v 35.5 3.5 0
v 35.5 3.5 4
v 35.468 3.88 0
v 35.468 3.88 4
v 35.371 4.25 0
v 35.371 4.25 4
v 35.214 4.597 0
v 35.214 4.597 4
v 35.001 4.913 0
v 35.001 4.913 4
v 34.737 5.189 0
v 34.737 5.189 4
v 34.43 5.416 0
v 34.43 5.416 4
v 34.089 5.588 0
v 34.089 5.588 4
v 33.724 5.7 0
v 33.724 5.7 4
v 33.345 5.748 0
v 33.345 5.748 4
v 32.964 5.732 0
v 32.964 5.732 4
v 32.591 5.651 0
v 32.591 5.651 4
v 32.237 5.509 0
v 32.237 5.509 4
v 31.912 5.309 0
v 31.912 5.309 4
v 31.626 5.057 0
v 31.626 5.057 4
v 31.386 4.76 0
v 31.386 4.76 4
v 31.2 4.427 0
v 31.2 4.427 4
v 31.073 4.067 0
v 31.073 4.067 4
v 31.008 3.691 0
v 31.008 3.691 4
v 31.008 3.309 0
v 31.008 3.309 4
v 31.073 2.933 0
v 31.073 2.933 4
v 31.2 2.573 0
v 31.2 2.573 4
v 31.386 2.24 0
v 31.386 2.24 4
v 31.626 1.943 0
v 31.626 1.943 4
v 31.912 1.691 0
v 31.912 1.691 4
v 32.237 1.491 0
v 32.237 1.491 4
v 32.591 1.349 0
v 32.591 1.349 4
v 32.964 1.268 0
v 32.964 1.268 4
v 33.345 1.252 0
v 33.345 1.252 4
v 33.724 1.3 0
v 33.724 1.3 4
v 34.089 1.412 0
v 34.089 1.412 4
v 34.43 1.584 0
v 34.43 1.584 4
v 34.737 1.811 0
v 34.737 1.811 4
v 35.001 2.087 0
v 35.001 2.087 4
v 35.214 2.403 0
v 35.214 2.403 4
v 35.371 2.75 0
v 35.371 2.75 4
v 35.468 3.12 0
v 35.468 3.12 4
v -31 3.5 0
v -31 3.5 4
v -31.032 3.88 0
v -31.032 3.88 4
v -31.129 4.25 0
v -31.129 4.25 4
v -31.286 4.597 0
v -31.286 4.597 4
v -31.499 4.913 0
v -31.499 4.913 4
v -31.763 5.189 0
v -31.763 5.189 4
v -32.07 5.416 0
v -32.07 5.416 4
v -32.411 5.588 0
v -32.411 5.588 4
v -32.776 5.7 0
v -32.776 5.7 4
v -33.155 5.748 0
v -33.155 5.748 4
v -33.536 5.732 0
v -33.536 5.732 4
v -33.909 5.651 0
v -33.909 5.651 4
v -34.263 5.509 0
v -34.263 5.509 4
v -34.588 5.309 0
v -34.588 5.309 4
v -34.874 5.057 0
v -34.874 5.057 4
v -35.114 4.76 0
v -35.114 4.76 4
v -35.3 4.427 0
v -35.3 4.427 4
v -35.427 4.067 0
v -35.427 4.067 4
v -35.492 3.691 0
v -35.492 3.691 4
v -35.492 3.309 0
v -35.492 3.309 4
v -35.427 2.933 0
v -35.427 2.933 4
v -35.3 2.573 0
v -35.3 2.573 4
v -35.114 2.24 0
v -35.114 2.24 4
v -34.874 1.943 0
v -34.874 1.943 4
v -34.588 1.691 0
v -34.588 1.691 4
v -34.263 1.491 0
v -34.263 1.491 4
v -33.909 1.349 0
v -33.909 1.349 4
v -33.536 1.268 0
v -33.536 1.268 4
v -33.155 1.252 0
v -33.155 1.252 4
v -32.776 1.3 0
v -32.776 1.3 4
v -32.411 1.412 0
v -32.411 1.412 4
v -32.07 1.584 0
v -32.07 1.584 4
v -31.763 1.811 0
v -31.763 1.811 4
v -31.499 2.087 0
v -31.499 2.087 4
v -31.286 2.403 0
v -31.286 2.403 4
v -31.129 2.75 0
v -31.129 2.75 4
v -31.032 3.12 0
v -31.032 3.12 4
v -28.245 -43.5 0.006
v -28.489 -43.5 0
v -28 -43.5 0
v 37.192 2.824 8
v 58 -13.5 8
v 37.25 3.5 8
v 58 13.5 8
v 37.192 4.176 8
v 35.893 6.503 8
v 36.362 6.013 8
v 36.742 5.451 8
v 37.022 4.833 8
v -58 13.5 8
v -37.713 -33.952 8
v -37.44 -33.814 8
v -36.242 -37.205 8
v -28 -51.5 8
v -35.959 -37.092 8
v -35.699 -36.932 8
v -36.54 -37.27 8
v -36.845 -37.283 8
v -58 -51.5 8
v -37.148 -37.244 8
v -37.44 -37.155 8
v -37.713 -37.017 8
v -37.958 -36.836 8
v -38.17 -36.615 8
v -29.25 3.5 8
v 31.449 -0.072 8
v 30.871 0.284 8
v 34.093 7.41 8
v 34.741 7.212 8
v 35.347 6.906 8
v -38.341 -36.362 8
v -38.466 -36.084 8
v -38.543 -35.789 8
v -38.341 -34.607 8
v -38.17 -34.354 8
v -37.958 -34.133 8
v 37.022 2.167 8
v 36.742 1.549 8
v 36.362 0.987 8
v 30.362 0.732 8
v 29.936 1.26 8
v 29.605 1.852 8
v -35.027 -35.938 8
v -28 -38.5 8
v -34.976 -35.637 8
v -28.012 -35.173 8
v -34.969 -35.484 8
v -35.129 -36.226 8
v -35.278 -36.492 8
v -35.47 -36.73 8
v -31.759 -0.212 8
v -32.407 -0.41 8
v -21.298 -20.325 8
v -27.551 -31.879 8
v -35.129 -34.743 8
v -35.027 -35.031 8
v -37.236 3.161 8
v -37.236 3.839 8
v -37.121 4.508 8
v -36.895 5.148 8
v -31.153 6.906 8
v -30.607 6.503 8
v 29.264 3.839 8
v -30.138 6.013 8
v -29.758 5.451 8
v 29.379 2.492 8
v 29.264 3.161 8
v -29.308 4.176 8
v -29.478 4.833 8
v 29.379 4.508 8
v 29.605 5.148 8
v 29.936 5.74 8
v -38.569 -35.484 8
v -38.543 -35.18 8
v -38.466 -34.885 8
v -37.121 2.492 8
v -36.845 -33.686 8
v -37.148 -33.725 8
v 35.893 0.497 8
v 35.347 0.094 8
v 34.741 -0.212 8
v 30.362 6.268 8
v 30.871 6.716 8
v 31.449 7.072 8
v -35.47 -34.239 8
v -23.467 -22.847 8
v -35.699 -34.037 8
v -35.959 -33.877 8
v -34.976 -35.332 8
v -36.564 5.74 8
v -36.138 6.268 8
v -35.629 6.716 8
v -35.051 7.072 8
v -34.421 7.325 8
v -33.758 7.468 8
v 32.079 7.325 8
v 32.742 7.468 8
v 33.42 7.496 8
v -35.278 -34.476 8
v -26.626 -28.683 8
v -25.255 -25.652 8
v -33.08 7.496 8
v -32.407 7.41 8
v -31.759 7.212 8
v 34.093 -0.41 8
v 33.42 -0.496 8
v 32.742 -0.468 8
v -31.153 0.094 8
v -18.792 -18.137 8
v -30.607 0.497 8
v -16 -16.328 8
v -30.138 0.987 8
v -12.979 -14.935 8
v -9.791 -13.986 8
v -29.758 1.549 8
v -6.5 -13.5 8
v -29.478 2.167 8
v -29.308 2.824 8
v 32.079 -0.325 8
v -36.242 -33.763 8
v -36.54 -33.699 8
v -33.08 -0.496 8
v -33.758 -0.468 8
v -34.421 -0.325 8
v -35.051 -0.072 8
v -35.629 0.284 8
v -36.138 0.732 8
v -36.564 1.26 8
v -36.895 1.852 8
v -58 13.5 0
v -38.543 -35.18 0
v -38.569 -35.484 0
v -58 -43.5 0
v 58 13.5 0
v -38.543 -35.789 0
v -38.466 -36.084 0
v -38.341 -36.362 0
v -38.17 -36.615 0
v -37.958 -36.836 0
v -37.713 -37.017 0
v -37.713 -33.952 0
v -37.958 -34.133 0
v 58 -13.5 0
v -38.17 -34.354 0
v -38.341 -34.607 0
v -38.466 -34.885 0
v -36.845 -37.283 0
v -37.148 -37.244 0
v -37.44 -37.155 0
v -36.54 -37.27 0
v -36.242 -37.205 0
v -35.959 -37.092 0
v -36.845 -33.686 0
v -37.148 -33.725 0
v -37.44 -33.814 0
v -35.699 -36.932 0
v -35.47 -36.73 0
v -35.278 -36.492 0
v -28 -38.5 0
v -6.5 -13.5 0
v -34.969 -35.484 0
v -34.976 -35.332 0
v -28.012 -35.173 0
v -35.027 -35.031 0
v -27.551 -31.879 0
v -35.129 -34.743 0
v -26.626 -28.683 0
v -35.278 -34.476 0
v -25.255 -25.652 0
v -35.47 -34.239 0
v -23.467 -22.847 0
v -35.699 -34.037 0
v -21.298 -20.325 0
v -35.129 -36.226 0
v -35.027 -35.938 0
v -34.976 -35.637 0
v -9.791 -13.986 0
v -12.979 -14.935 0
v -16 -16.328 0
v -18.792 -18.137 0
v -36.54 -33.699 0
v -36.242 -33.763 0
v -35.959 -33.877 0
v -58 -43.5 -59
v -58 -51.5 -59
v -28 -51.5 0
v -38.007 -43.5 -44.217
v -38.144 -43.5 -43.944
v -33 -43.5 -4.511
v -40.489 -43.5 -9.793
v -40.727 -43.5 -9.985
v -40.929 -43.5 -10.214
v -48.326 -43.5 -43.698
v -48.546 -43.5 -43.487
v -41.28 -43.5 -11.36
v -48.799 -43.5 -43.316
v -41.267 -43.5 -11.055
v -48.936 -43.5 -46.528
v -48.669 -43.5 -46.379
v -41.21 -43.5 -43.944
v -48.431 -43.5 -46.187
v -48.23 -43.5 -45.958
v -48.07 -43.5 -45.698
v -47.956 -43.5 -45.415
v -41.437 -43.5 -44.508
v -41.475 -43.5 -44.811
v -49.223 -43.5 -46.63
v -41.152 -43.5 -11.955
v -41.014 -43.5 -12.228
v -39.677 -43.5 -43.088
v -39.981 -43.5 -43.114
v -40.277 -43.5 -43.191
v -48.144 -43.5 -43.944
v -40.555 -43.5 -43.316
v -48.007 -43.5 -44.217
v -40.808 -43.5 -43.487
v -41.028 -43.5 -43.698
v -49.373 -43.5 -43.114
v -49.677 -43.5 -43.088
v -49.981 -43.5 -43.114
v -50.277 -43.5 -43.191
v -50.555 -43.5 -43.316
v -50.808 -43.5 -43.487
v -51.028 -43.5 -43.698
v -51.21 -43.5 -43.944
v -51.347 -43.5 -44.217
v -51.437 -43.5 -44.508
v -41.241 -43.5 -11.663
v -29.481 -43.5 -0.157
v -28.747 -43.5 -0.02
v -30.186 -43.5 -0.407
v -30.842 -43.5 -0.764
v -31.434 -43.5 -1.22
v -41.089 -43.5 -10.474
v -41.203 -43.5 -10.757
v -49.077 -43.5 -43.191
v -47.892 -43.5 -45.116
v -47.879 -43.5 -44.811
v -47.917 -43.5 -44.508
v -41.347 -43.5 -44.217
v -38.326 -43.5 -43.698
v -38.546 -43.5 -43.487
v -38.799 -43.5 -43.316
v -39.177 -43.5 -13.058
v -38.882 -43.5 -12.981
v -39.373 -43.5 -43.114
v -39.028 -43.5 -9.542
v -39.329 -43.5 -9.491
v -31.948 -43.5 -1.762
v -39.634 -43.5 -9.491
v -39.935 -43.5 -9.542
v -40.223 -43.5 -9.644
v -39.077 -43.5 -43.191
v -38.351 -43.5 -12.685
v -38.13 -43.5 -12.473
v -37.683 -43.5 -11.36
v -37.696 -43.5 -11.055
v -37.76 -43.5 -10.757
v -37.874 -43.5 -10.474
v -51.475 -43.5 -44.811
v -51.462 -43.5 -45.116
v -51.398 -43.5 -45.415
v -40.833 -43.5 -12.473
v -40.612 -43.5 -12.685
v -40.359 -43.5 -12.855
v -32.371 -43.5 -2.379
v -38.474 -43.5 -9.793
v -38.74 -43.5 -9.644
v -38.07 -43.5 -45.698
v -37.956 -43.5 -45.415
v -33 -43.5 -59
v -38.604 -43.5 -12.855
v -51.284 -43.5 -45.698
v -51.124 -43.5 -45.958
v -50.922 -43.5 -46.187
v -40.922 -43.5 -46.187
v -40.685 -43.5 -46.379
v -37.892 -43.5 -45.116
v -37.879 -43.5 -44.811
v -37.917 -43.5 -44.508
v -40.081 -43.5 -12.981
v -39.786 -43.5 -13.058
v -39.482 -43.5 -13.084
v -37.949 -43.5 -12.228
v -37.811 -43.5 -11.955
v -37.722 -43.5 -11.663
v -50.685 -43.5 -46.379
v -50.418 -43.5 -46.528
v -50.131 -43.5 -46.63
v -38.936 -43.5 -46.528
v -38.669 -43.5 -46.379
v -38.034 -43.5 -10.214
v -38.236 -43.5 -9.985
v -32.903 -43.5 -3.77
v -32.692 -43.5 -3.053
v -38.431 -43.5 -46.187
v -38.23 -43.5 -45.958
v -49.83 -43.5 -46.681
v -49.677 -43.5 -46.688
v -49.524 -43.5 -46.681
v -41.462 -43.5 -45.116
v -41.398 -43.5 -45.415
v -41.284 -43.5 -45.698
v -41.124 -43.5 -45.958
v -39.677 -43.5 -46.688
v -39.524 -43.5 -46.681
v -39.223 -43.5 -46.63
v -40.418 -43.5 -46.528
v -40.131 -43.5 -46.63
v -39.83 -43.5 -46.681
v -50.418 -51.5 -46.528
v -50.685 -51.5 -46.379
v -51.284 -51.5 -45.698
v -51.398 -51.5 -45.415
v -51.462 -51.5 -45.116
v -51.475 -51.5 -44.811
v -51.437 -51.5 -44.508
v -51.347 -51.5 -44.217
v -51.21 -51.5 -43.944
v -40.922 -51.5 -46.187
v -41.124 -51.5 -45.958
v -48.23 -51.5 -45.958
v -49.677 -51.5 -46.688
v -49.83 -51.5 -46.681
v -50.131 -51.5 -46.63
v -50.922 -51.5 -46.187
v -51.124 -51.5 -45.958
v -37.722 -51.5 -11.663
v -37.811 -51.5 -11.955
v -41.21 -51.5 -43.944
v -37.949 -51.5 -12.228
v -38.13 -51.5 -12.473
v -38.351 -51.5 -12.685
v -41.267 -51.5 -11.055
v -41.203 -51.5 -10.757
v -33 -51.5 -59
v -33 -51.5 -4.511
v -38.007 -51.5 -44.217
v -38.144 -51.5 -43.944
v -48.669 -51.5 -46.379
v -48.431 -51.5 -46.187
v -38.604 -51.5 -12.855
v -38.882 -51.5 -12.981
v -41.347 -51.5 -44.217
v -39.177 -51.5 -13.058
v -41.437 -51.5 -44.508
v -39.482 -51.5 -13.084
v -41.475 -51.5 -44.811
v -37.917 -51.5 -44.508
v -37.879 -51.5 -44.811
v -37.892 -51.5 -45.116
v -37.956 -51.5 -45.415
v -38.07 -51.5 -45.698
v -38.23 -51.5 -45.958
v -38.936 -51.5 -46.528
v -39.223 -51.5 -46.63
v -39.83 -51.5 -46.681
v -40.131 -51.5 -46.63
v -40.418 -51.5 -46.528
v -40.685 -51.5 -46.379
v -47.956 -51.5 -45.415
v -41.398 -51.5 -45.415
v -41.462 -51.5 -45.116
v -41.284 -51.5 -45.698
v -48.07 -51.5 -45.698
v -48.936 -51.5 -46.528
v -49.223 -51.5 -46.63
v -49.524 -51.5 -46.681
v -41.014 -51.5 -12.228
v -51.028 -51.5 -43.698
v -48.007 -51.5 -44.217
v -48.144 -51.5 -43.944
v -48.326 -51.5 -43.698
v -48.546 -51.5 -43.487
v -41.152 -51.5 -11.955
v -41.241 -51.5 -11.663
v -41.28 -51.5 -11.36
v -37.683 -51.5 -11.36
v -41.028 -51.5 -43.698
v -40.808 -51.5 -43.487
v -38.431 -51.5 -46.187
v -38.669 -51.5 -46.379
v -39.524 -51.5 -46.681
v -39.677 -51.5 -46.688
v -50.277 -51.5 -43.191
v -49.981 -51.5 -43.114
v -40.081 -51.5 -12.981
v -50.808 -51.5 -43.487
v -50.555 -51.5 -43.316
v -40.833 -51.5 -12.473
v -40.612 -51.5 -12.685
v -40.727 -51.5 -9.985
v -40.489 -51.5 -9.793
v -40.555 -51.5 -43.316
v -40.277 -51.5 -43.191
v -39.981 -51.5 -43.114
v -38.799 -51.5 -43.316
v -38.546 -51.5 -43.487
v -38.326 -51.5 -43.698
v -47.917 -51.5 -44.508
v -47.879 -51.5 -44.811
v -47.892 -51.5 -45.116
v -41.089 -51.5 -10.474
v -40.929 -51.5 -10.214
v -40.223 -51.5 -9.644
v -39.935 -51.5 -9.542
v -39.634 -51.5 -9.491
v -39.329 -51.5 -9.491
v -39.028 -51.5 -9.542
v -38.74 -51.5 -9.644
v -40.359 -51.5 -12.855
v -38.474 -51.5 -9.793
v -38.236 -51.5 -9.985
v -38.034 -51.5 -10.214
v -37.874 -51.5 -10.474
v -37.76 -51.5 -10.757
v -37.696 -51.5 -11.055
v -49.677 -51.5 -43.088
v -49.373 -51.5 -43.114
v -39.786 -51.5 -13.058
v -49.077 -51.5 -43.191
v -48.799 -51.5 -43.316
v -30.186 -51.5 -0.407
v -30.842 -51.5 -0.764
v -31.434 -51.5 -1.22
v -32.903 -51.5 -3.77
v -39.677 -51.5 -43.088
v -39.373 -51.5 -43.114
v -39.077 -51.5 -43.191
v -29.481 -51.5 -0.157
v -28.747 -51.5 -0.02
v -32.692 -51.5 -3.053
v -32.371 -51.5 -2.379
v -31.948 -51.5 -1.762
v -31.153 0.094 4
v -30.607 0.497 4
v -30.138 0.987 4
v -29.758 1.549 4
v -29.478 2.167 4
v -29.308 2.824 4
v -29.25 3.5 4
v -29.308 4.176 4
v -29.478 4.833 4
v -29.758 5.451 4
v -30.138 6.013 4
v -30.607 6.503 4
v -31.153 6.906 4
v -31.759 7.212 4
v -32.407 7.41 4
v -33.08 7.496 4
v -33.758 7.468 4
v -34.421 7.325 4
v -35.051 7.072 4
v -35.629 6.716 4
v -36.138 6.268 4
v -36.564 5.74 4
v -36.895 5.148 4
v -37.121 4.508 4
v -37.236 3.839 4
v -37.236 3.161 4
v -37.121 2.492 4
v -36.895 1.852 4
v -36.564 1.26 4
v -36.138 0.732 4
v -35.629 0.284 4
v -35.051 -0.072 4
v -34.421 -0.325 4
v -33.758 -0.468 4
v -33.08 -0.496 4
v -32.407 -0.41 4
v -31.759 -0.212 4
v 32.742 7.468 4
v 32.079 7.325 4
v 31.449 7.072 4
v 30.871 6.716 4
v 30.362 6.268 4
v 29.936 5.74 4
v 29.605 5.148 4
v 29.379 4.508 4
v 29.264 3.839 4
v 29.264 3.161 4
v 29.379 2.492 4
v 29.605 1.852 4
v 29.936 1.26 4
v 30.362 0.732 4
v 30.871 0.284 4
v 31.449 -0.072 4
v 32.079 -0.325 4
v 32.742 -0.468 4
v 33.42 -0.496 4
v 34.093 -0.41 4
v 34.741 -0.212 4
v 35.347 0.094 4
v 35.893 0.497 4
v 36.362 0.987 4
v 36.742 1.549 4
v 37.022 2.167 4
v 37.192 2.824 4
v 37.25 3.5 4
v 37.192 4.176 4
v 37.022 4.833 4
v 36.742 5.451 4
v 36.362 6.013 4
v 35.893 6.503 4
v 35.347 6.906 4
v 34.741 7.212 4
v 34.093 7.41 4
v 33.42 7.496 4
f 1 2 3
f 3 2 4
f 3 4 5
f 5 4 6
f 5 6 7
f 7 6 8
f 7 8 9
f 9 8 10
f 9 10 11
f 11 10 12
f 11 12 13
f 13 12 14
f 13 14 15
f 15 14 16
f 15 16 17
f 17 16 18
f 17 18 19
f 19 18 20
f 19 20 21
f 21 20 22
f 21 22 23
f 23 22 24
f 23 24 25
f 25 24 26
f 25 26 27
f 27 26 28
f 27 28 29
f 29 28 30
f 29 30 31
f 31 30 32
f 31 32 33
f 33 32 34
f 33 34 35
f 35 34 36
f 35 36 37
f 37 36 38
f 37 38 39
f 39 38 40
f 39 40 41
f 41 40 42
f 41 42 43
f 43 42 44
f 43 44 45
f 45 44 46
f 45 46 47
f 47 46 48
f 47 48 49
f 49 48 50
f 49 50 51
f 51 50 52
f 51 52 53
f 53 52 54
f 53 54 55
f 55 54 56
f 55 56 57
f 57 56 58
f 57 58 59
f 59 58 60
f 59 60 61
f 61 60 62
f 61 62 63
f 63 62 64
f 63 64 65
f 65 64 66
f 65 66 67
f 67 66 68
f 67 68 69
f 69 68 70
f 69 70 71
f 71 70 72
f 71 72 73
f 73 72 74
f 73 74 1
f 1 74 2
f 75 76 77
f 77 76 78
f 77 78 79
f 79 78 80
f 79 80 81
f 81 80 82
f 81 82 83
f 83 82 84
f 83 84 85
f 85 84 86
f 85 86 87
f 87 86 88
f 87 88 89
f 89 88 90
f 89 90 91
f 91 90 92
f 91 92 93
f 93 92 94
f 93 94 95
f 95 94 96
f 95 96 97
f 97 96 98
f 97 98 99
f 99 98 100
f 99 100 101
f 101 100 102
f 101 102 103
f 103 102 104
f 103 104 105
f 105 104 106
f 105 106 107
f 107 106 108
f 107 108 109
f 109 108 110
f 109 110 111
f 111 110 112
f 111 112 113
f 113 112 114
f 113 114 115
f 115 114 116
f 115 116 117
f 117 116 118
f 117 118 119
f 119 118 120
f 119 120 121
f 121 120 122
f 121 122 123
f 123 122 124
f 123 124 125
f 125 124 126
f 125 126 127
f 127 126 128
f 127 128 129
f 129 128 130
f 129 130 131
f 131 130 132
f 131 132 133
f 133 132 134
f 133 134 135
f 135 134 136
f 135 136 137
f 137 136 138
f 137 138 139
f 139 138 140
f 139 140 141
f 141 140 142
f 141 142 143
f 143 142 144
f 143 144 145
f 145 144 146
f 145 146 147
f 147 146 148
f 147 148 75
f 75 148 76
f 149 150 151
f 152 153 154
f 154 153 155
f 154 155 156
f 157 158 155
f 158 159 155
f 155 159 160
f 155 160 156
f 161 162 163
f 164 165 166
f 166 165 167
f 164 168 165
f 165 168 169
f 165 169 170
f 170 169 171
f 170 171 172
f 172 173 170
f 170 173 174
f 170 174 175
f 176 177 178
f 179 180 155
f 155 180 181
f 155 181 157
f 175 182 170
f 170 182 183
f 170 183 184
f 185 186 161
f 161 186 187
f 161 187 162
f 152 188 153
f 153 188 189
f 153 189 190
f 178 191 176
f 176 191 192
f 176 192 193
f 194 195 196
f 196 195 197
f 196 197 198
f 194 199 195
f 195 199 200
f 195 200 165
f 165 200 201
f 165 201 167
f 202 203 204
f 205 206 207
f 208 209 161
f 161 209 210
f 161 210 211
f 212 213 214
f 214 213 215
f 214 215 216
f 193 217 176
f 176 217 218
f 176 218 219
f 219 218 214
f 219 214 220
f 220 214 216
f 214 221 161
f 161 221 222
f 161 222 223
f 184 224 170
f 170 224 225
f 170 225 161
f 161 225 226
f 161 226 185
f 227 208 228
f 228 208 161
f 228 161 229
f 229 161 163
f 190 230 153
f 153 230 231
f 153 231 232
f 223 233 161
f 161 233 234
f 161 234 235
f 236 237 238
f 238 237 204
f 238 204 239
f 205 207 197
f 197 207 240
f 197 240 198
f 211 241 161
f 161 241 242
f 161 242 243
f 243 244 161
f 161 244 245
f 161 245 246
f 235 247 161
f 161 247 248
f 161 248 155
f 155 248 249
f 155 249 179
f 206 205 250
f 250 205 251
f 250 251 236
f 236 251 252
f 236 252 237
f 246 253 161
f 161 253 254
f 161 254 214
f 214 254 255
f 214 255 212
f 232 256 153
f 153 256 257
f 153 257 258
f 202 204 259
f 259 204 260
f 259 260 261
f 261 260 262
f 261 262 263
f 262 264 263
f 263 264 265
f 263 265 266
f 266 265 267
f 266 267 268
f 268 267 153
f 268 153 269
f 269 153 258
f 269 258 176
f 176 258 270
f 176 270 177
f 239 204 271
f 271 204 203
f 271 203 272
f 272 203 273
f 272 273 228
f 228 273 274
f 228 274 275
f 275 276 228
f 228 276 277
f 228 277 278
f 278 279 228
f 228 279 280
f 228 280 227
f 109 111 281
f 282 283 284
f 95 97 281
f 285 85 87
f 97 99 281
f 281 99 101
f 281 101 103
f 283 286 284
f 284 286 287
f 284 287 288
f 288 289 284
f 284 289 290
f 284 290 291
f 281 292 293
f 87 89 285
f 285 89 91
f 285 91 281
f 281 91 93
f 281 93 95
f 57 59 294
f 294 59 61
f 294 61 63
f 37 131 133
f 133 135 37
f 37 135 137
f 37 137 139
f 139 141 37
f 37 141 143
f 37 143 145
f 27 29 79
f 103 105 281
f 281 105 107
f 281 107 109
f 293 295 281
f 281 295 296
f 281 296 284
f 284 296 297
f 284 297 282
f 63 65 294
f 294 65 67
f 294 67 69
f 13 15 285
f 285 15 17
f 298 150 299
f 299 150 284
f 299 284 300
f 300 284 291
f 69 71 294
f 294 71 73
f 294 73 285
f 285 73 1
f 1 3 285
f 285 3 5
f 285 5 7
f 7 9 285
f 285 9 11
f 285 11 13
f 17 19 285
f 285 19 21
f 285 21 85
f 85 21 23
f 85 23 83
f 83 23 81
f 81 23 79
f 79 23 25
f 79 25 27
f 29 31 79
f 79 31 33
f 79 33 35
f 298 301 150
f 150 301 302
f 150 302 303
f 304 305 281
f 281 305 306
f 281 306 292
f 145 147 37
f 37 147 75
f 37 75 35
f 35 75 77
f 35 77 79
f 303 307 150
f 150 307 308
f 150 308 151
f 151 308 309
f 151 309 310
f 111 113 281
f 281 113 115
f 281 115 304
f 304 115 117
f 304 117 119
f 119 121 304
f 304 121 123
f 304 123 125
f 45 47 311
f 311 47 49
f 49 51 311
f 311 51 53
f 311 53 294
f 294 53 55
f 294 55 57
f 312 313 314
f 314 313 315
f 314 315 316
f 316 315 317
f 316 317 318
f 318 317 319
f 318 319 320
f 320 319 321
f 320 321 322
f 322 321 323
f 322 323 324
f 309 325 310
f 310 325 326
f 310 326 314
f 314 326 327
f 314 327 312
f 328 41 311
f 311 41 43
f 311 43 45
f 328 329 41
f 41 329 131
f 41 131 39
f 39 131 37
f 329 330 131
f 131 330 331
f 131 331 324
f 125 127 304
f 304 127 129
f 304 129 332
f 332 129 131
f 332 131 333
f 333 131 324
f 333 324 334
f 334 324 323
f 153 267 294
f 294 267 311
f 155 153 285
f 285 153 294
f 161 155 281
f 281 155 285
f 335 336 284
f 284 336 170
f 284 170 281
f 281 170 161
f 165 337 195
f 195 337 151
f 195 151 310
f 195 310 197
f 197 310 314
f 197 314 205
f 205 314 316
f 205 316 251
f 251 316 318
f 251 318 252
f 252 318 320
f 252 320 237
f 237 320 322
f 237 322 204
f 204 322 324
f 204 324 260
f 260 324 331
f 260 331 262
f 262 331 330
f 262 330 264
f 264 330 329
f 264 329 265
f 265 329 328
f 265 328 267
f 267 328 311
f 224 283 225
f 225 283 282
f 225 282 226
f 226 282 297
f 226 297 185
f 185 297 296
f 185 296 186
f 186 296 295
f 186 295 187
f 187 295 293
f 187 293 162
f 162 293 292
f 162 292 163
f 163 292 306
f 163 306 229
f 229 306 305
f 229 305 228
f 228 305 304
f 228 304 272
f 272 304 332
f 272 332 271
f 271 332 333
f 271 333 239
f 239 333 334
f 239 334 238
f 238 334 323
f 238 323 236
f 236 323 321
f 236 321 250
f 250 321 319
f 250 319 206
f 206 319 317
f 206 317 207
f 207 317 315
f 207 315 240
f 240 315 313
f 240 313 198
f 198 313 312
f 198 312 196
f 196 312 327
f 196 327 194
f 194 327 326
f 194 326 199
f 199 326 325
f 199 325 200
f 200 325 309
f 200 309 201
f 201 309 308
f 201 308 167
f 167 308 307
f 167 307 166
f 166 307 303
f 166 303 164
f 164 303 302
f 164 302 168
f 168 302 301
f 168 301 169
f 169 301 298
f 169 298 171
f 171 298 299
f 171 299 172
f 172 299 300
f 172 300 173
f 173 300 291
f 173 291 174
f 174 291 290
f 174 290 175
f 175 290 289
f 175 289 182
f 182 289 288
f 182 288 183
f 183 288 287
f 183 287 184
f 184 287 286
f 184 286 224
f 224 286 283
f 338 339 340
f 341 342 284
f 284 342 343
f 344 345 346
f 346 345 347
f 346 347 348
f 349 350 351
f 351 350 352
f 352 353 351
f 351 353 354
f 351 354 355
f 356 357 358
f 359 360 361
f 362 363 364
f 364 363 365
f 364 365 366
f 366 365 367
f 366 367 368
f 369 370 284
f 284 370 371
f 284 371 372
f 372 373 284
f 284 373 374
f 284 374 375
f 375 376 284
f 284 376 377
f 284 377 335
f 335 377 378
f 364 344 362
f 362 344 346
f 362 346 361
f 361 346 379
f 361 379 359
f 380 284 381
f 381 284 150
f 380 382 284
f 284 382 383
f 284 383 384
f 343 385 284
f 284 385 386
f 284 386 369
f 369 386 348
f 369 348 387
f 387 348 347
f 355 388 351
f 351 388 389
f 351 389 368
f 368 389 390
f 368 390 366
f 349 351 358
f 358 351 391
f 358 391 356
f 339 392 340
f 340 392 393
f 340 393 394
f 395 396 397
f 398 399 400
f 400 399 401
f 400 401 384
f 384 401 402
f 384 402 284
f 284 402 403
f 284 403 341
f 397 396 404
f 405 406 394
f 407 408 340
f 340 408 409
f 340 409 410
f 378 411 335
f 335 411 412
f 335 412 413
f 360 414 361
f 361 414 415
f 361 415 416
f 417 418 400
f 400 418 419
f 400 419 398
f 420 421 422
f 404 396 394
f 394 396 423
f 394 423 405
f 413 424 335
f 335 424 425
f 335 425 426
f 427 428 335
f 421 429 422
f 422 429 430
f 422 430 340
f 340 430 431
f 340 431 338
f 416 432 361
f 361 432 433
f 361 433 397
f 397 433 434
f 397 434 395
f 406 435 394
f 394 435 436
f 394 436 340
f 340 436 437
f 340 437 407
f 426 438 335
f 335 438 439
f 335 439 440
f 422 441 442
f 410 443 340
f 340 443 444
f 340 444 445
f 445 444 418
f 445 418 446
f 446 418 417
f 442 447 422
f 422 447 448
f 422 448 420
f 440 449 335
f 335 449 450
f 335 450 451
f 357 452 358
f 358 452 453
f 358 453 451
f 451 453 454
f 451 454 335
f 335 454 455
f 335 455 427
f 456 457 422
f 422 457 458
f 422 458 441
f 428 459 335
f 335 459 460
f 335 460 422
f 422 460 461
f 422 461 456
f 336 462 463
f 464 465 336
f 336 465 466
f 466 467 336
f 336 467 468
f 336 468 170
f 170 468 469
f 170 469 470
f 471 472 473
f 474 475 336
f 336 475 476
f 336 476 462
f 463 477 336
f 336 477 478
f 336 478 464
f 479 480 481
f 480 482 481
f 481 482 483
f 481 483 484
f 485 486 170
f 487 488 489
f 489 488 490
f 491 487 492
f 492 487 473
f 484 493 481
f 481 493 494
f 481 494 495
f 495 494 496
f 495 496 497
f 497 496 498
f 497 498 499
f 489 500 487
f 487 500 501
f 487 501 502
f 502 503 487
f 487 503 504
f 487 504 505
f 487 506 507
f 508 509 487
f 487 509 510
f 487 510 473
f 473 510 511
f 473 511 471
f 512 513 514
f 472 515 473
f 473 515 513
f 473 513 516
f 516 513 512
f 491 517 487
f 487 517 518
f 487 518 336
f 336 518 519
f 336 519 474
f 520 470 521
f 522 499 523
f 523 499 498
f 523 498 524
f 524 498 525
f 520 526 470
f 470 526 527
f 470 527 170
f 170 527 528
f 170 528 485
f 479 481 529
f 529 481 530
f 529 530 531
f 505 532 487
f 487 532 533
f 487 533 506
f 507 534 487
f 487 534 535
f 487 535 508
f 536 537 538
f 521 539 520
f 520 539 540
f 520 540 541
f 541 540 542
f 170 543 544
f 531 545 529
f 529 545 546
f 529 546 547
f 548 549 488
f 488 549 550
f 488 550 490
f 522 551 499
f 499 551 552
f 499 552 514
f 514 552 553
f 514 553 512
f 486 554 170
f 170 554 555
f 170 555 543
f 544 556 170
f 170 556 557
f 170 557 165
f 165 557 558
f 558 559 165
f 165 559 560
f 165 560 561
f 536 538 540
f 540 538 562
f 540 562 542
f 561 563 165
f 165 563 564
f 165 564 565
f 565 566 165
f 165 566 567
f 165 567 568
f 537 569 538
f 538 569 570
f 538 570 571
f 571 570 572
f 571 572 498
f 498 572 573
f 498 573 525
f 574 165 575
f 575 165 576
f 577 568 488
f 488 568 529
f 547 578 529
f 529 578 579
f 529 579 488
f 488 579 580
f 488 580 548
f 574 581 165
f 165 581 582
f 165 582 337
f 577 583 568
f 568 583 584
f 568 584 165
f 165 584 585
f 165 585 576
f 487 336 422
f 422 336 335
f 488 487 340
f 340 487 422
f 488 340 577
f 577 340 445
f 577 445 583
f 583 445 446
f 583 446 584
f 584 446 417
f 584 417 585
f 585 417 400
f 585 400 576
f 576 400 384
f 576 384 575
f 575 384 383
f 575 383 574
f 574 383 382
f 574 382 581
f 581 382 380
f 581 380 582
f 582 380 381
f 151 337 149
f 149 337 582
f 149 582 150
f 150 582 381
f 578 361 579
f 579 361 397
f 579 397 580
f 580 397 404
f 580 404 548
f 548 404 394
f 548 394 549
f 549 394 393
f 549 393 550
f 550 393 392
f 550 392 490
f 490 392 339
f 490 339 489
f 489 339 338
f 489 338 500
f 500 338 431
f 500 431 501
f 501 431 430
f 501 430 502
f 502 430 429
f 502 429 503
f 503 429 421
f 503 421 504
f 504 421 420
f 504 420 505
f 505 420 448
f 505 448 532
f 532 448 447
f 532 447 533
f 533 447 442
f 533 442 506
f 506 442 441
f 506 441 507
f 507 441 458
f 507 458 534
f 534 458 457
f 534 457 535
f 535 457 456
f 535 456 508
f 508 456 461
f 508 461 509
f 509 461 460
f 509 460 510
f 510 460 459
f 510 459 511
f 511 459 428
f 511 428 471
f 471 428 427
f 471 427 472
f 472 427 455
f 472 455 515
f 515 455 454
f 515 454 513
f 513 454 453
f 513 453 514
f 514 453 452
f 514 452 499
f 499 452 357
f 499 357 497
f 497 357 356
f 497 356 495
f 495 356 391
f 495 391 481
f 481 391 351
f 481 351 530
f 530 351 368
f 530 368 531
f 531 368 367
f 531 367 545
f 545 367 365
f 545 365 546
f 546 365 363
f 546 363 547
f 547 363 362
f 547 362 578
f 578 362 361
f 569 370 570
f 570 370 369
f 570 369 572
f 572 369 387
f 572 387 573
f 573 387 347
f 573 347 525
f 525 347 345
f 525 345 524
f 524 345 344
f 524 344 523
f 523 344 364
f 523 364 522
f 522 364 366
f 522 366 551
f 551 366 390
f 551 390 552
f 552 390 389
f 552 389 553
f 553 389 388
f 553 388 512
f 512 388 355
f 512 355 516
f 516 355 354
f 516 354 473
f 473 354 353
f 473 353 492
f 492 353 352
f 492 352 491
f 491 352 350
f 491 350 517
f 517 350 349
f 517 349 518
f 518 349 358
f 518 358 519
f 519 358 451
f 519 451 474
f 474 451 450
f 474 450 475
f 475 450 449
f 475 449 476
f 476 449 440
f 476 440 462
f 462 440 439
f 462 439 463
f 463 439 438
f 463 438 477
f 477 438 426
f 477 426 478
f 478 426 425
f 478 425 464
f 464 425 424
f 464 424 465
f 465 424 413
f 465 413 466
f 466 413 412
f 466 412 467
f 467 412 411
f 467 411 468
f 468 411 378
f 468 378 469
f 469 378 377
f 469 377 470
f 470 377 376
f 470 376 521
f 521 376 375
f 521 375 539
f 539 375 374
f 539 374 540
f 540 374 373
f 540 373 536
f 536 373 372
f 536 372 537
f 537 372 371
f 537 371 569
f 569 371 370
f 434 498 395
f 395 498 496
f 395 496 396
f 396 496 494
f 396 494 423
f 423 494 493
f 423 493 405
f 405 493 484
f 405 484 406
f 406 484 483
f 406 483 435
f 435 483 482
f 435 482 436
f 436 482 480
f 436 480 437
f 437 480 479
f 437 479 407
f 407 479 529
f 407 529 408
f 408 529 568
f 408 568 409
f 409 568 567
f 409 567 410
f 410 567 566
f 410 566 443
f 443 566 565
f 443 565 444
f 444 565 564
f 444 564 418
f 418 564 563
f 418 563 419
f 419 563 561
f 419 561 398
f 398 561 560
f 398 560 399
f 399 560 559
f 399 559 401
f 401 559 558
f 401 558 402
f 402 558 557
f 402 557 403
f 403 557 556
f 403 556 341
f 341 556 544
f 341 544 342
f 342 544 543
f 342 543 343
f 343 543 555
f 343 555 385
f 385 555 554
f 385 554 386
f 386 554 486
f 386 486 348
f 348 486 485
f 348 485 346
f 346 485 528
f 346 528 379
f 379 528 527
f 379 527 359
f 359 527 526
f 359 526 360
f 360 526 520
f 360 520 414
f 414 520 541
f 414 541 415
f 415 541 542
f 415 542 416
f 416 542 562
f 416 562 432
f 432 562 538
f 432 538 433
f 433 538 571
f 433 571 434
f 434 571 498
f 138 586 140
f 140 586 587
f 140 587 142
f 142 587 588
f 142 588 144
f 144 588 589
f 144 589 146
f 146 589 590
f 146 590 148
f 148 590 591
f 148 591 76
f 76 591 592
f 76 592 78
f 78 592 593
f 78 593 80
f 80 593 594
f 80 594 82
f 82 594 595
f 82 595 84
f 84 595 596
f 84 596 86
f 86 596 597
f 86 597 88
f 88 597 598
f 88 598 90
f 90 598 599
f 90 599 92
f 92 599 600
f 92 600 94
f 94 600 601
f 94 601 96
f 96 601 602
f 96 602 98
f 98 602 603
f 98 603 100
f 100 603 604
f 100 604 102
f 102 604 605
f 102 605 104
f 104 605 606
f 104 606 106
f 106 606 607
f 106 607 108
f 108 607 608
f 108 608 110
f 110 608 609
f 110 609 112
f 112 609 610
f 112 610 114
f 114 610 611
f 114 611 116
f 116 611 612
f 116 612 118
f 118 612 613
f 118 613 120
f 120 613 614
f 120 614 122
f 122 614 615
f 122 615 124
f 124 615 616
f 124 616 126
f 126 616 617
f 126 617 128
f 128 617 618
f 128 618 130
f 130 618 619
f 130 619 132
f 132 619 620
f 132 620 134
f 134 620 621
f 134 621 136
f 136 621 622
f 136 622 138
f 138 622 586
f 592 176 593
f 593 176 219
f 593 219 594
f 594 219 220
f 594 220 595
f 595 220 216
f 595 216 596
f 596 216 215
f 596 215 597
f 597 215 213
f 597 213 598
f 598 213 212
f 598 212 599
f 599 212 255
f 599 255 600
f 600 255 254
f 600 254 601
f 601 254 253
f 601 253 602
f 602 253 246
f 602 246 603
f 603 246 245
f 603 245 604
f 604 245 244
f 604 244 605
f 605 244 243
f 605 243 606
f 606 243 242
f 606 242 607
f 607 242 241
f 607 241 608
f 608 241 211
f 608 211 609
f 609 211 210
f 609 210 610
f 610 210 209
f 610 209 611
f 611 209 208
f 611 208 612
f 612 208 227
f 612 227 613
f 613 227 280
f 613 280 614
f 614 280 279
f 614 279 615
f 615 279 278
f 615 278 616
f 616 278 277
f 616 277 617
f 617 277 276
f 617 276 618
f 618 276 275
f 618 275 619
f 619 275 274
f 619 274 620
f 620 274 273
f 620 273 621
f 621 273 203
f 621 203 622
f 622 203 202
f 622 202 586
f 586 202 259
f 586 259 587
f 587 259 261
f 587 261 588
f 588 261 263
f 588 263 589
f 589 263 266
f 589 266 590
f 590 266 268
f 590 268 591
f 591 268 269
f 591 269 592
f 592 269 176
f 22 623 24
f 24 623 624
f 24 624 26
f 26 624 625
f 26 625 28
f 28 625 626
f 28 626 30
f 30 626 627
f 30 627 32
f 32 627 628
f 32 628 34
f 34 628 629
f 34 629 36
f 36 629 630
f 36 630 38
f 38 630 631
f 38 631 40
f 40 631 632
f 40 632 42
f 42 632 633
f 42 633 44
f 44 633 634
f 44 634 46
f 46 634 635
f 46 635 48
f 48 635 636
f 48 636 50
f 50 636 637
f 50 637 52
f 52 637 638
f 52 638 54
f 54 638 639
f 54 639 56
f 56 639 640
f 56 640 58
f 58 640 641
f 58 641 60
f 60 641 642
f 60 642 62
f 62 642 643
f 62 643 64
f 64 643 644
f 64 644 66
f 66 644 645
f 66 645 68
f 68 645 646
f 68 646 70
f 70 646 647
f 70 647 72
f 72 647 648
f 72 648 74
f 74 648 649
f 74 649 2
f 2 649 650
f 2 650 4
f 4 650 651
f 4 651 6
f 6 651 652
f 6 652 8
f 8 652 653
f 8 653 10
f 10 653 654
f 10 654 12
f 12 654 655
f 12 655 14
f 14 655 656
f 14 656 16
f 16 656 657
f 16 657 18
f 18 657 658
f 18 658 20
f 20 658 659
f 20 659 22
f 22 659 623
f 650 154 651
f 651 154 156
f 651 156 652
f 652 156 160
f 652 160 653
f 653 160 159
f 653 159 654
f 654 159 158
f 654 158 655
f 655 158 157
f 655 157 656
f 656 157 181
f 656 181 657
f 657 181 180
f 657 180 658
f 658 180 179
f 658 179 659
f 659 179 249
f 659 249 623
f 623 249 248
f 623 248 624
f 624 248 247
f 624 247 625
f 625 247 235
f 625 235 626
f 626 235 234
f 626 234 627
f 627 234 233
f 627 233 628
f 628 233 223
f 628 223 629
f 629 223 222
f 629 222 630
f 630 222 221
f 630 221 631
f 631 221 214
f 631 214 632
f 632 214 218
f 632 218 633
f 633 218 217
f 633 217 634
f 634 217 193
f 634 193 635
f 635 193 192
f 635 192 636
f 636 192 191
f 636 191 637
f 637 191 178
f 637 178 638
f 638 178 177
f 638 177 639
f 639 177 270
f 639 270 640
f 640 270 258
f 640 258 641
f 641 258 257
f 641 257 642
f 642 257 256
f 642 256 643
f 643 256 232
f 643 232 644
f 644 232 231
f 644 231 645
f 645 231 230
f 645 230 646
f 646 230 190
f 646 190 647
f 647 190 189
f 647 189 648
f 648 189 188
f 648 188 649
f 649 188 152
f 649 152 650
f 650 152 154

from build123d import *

# Parameters (mm, degrees)
SKETCH_1_R          = 1.8
EXTRUDE_1_DEPTH     = 8
SKETCH_3_R          = 2.25
CUT_EXTRUDE_1_DEPTH = 9
SKETCH_5_R          = 1.8
EXTRUDE_3_DEPTH     = 8
SKETCH_17_R         = 1.8
CUT_EXTRUDE_8_DEPTH = 10
SKETCH_18_R         = 4
CUT_EXTRUDE_9_DEPTH = 4


with BuildPart() as part:
    # 草图1 → 凸台-拉伸1 (new body)
    with BuildSketch(Plane.XY):
        with BuildLine():
            Line((58, 13.5), (58, -13.5))
            Line((58, -13.5), (-6.5, -13.5))
            ThreePointArc((-6.5, -13.5), (-22.42766953, -21.547204204), (-28, -38.5))
            Line((-28, -38.5), (-28, -43.5))
            Line((-28, -43.5), (-58, -43.5))
            Line((-58, -43.5), (-58, 13.5))
            Line((-58, 13.5), (58, 13.5))
        make_face()
        with Locations((-36.769098454, -35.48436381)):
            Circle(SKETCH_1_R, mode=Mode.SUBTRACT)
    extrude(amount=EXTRUDE_1_DEPTH)

    # 草图3 → 切除-拉伸1 (cut, through all)
    with BuildSketch(Plane.XY.offset(8)):
        with Locations((-33.25, 3.5)):
            Circle(SKETCH_3_R)
        with Locations((33.25, 3.5)):
            Circle(SKETCH_3_R)
    extrude(amount=-CUT_EXTRUDE_1_DEPTH, mode=Mode.SUBTRACT)

    # 草图5 → 凸台-拉伸3 (add)
    with BuildSketch(Plane.XZ.offset(43.5)):
        with BuildLine():
            Line((-33, -59), (-58, -59))
            Line((-58, -59), (-58, 8))
            Line((-58, 8), (-28, 8))
            Line((-28, 8), (-28, 0))
            ThreePointArc((-28, 0), (-31.434237008, -1.219913748), (-33, -4.510895309))
            Line((-33, -4.510895309), (-33, -59))
        make_face()
        with Locations((-49.676985034, -44.88768769)):
            Circle(SKETCH_5_R, mode=Mode.SUBTRACT)
        with Locations((-39.676985034, -44.88768769)):
            Circle(SKETCH_5_R, mode=Mode.SUBTRACT)
    extrude(amount=EXTRUDE_3_DEPTH)

    # 草图17 → 切除-拉伸8 (cut)
    with BuildSketch(Plane.XZ.offset(51.5)):
        with Locations((-39.481532593, -11.284064148)):
            Circle(SKETCH_17_R)
    extrude(amount=-CUT_EXTRUDE_8_DEPTH, mode=Mode.SUBTRACT)

    # 草图18 → 切除-拉伸9 (cut)
    with BuildSketch(Plane.XY.offset(8)):
        with Locations((-33.25, 3.5)):
            Circle(SKETCH_18_R)
        with Locations((33.25, 3.5)):
            Circle(SKETCH_18_R)
    extrude(amount=-CUT_EXTRUDE_9_DEPTH, mode=Mode.SUBTRACT)


solid = part.part
